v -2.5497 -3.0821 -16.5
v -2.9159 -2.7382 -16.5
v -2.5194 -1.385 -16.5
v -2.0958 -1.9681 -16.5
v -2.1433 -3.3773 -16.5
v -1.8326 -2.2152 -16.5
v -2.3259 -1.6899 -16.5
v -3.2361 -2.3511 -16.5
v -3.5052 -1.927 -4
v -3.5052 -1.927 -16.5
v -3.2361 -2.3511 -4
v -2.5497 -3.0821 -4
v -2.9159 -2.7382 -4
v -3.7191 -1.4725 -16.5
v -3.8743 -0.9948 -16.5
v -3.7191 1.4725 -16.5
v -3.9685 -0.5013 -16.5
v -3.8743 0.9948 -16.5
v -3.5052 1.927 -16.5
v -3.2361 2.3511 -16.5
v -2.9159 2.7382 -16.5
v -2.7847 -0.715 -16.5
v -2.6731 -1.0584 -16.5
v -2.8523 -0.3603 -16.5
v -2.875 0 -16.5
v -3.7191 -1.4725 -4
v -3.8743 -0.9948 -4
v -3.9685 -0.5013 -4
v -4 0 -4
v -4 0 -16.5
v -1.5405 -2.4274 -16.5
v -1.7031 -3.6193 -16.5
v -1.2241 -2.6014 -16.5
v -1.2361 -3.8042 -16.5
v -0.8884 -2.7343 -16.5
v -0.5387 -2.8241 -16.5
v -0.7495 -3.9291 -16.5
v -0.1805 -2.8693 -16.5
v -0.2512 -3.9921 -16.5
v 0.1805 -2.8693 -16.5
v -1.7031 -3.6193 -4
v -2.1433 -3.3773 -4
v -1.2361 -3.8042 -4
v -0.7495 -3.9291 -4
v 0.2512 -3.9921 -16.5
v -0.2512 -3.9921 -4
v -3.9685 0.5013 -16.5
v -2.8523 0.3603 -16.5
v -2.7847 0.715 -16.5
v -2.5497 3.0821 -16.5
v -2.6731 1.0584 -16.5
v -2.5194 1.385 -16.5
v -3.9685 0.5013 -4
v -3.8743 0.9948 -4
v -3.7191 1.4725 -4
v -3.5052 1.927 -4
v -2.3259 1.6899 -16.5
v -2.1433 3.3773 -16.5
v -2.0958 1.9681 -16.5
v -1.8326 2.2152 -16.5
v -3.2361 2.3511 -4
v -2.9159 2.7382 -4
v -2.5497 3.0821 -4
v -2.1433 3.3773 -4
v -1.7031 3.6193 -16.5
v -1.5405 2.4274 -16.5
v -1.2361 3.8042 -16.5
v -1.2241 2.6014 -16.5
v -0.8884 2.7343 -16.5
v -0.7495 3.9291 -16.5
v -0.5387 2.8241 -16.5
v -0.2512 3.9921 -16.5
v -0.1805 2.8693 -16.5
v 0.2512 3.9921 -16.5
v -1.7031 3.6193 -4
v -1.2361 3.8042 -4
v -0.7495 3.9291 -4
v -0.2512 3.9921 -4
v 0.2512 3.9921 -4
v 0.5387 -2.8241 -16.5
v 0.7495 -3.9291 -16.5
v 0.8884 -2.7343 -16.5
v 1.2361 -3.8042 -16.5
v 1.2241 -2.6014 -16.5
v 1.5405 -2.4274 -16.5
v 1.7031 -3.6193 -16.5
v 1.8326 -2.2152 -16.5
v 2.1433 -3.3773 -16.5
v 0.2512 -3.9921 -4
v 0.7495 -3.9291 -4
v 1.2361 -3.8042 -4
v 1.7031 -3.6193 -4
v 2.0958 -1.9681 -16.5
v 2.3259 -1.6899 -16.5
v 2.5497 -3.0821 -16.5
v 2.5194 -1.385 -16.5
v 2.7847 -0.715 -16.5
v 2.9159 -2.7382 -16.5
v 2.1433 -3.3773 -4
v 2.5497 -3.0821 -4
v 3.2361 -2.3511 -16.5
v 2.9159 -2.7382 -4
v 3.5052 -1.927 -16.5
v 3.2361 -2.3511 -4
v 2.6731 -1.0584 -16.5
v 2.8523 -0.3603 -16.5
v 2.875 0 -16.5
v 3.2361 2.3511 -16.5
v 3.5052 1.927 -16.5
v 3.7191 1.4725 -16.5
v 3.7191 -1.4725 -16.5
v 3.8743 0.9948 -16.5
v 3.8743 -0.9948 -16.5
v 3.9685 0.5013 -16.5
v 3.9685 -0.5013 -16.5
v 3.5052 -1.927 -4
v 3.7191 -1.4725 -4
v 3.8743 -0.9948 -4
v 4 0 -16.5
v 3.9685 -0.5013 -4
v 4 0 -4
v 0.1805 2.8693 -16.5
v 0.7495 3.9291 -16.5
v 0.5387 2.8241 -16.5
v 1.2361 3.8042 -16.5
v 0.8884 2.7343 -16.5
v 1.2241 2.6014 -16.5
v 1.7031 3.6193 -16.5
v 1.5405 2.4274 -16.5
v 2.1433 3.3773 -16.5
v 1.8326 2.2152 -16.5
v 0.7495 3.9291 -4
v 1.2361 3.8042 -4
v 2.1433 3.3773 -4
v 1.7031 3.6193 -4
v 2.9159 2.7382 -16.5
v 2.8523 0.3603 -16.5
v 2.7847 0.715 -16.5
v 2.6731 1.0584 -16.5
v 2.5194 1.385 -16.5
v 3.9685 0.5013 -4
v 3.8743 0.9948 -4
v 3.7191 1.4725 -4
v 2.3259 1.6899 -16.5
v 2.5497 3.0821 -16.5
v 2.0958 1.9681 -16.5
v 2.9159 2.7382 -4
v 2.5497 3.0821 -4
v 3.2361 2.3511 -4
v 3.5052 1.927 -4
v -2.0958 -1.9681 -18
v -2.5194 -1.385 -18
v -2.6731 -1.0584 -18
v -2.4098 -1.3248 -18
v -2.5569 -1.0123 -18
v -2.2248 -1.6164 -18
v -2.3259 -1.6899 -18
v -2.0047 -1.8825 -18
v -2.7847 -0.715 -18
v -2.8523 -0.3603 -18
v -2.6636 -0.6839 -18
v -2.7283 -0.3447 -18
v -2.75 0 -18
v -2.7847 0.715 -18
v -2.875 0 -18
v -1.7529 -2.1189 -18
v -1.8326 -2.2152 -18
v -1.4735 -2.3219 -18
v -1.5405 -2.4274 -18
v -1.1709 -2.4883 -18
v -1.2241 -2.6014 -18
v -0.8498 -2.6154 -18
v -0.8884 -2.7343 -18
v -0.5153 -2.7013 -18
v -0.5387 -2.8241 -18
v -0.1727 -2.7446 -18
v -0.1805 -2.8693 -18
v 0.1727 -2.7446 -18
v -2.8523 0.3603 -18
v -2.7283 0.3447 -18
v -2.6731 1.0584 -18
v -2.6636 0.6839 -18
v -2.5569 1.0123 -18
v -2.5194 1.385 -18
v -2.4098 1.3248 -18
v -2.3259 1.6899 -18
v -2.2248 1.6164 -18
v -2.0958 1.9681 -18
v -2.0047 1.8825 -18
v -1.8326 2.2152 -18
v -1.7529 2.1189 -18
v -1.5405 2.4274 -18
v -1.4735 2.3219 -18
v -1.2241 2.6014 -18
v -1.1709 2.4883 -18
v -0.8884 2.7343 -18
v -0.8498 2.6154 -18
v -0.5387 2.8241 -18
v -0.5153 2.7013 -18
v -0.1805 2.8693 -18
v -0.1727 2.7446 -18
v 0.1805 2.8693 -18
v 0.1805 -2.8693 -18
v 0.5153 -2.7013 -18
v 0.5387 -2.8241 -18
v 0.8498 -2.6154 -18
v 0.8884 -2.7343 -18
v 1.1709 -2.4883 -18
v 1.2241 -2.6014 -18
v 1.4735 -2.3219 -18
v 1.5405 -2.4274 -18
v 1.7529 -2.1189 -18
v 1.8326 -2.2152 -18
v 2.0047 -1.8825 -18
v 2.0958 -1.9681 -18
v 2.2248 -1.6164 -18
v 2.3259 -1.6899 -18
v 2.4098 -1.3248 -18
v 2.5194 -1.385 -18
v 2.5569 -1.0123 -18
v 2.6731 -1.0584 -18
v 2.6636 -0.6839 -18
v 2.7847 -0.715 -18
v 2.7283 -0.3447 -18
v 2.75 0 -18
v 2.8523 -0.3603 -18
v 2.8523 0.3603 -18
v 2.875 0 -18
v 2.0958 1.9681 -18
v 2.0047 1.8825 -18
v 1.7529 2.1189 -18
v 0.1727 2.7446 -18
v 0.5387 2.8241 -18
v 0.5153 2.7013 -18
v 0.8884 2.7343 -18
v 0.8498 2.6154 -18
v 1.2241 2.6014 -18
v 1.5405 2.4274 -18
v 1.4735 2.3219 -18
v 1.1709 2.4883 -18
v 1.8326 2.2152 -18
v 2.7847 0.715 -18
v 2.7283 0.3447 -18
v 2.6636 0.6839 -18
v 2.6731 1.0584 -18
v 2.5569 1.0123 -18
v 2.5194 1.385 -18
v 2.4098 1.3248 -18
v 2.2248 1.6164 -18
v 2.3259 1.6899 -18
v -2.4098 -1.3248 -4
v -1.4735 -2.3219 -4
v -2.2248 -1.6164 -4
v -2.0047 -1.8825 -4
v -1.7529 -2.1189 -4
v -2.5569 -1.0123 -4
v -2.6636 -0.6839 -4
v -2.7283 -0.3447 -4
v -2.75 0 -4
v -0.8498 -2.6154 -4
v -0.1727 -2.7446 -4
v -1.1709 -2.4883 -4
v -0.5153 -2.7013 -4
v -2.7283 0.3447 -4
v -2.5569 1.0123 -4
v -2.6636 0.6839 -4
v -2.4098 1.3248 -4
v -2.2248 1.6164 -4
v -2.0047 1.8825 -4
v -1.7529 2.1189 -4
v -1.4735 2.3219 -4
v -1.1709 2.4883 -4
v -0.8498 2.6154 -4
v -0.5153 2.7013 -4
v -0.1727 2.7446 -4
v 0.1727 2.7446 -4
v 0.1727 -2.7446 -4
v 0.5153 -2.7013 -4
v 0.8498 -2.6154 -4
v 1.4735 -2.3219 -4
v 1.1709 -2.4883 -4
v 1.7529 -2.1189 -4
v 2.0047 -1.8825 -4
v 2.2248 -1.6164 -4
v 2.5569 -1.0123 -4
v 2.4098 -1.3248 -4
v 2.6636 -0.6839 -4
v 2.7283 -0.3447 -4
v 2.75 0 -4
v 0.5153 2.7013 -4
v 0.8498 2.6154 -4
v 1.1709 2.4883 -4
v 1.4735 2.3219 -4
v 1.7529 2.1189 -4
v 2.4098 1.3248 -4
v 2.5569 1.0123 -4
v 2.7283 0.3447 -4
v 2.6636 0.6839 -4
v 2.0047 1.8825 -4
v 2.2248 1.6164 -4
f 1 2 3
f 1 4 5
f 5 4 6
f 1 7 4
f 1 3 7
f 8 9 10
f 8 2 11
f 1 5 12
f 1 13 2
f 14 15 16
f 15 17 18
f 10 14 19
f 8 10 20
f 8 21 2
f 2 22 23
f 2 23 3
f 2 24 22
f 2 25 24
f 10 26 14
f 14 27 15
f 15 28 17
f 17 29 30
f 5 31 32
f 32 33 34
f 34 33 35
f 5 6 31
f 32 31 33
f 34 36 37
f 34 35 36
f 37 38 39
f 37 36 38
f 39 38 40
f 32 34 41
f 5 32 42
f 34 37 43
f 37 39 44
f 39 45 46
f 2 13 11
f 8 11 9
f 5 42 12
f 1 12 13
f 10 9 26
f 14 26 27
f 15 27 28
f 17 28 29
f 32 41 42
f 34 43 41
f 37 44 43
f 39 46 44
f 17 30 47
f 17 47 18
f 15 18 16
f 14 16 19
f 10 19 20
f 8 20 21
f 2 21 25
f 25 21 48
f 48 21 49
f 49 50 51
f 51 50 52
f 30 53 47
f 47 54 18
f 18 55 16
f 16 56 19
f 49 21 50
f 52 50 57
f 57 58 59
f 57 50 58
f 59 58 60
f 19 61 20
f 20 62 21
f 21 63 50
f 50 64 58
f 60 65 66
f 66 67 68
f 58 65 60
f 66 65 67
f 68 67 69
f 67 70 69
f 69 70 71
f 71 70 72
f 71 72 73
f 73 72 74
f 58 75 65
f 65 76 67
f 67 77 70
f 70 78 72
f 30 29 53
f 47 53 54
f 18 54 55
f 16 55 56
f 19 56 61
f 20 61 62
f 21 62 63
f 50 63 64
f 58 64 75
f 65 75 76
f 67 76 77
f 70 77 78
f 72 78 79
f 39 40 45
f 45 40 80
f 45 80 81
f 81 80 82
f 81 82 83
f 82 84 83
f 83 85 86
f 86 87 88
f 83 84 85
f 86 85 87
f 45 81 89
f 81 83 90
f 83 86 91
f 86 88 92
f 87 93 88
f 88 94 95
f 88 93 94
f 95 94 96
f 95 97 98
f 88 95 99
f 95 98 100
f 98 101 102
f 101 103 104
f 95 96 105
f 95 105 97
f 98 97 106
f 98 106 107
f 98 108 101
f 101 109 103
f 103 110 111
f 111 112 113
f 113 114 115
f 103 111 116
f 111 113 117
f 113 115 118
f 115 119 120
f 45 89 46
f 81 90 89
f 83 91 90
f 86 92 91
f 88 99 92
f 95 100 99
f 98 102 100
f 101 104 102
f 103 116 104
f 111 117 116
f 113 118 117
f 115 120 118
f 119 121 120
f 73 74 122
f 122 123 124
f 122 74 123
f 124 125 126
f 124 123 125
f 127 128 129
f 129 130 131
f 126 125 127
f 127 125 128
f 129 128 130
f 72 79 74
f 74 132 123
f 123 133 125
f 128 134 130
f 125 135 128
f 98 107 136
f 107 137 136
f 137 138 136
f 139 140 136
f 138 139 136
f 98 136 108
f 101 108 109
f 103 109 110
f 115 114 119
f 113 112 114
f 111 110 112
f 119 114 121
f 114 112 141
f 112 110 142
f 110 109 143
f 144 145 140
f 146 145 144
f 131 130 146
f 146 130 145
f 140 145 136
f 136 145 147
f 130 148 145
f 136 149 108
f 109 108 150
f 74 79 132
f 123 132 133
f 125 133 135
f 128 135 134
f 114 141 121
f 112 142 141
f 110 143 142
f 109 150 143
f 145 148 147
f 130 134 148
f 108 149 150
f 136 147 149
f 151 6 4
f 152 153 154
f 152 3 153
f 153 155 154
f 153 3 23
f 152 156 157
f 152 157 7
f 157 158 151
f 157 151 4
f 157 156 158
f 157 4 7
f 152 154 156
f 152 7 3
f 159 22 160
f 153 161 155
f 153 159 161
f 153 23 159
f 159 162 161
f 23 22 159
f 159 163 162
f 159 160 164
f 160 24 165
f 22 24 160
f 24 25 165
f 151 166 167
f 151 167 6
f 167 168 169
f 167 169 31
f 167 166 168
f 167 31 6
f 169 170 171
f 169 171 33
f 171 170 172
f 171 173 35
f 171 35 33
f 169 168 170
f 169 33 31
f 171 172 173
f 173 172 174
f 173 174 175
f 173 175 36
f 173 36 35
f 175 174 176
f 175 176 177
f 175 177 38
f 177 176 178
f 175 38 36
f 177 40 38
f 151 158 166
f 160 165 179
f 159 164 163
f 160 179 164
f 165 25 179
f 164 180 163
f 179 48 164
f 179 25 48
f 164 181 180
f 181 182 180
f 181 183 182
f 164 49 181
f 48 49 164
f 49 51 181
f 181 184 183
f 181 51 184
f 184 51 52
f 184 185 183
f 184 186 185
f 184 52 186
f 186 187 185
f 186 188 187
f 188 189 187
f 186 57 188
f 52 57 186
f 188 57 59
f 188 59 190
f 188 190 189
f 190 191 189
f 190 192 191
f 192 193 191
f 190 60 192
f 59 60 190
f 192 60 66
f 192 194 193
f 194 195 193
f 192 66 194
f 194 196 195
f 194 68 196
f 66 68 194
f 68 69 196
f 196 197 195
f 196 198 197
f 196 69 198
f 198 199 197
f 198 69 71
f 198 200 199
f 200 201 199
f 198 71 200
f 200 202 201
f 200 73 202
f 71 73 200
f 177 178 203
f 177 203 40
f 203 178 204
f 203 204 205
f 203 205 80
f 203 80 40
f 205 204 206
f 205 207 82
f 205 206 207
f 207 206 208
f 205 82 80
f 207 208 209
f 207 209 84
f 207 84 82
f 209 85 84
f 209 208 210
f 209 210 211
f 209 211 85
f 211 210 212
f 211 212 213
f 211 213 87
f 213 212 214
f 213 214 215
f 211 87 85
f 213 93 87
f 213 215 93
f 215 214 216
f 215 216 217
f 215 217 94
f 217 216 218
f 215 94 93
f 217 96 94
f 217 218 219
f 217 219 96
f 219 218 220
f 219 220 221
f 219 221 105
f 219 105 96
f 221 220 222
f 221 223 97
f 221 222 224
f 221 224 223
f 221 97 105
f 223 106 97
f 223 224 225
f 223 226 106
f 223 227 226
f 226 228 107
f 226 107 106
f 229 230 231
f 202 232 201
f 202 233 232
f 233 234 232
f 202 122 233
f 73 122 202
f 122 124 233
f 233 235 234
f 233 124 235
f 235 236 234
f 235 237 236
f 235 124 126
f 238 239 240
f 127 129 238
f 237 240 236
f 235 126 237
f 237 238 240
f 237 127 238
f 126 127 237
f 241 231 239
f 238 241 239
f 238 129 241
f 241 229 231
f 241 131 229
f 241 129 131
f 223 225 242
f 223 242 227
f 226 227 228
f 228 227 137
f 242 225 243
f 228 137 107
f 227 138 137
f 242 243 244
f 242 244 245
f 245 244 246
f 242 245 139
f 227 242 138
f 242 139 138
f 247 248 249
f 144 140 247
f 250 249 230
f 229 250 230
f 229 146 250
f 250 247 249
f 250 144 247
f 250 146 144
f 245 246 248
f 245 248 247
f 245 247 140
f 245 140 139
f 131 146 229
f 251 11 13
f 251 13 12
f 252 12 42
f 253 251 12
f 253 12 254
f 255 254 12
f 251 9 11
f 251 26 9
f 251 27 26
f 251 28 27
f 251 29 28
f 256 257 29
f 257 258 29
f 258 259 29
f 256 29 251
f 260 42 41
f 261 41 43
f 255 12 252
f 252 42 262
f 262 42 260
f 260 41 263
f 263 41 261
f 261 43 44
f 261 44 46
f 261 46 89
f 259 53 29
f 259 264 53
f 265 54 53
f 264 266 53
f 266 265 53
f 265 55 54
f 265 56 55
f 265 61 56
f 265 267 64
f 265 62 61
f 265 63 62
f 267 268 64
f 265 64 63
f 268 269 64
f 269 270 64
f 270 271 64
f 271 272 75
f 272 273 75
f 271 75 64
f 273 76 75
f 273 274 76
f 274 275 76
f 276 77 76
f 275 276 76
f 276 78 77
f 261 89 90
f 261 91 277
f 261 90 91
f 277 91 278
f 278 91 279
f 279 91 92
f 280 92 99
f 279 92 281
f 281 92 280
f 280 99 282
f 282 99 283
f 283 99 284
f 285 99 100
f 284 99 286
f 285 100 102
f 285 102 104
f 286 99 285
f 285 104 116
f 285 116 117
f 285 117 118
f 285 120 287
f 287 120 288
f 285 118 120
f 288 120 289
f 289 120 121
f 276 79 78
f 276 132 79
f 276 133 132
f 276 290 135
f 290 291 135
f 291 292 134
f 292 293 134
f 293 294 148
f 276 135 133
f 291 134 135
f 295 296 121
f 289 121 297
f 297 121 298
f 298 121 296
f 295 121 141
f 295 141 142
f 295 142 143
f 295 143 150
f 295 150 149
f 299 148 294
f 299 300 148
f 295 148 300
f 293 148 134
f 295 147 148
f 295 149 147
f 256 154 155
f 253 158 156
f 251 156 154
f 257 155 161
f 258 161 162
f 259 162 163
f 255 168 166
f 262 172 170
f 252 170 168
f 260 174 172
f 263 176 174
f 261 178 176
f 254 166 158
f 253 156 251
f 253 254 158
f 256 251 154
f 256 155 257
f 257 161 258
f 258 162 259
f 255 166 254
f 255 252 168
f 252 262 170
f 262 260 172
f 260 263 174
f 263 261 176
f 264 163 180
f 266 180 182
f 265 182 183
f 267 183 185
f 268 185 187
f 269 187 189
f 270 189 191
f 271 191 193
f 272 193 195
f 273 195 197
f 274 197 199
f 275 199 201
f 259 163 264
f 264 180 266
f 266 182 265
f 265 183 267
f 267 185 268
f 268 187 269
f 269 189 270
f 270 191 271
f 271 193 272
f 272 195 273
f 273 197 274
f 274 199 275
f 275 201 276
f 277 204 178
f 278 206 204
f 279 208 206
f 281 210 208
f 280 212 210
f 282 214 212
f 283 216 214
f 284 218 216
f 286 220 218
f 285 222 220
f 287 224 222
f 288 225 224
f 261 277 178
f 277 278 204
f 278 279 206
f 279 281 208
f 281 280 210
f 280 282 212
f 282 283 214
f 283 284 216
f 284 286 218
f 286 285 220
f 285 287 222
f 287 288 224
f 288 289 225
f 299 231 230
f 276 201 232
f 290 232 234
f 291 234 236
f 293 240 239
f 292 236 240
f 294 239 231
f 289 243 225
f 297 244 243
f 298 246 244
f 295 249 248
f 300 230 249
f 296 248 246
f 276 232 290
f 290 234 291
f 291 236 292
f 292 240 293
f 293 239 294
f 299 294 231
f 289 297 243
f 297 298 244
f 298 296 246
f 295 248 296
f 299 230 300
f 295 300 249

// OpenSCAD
$fn = 50;

difference() {
	union() {
		translate(v = [0, 0, -16.5]) {
			cylinder(h = 16.5, r = 4.0);
		}
		#translate(v = [0, 0, -18.0]) {
			cylinder(h = 18, r = 2.875);
		}
	}
	union() {
		translate(v = [0, 0, 0]) {
			rotate(a = [0, 0, 0]) {
				difference() {
					union() {
						translate(v = [0, 0, -4]) {
							linear_extrude(height = 4) {
								polygon(points = [[4.8468, 0.0], [2.4234000000000004, 4.197451927062417], [-2.423399999999999, 4.197451927062417], [-4.8468, 5.935618106107392e-16], [-2.423400000000002, -4.197451927062416], [2.423399999999997, -4.197451927062419]]);
							}
						}
					}
					union();
				}
			}
		}
		#translate(v = [0, 0, -100.0]) {
			cylinder(h = 200, r = 2.75);
		}
	}
}
